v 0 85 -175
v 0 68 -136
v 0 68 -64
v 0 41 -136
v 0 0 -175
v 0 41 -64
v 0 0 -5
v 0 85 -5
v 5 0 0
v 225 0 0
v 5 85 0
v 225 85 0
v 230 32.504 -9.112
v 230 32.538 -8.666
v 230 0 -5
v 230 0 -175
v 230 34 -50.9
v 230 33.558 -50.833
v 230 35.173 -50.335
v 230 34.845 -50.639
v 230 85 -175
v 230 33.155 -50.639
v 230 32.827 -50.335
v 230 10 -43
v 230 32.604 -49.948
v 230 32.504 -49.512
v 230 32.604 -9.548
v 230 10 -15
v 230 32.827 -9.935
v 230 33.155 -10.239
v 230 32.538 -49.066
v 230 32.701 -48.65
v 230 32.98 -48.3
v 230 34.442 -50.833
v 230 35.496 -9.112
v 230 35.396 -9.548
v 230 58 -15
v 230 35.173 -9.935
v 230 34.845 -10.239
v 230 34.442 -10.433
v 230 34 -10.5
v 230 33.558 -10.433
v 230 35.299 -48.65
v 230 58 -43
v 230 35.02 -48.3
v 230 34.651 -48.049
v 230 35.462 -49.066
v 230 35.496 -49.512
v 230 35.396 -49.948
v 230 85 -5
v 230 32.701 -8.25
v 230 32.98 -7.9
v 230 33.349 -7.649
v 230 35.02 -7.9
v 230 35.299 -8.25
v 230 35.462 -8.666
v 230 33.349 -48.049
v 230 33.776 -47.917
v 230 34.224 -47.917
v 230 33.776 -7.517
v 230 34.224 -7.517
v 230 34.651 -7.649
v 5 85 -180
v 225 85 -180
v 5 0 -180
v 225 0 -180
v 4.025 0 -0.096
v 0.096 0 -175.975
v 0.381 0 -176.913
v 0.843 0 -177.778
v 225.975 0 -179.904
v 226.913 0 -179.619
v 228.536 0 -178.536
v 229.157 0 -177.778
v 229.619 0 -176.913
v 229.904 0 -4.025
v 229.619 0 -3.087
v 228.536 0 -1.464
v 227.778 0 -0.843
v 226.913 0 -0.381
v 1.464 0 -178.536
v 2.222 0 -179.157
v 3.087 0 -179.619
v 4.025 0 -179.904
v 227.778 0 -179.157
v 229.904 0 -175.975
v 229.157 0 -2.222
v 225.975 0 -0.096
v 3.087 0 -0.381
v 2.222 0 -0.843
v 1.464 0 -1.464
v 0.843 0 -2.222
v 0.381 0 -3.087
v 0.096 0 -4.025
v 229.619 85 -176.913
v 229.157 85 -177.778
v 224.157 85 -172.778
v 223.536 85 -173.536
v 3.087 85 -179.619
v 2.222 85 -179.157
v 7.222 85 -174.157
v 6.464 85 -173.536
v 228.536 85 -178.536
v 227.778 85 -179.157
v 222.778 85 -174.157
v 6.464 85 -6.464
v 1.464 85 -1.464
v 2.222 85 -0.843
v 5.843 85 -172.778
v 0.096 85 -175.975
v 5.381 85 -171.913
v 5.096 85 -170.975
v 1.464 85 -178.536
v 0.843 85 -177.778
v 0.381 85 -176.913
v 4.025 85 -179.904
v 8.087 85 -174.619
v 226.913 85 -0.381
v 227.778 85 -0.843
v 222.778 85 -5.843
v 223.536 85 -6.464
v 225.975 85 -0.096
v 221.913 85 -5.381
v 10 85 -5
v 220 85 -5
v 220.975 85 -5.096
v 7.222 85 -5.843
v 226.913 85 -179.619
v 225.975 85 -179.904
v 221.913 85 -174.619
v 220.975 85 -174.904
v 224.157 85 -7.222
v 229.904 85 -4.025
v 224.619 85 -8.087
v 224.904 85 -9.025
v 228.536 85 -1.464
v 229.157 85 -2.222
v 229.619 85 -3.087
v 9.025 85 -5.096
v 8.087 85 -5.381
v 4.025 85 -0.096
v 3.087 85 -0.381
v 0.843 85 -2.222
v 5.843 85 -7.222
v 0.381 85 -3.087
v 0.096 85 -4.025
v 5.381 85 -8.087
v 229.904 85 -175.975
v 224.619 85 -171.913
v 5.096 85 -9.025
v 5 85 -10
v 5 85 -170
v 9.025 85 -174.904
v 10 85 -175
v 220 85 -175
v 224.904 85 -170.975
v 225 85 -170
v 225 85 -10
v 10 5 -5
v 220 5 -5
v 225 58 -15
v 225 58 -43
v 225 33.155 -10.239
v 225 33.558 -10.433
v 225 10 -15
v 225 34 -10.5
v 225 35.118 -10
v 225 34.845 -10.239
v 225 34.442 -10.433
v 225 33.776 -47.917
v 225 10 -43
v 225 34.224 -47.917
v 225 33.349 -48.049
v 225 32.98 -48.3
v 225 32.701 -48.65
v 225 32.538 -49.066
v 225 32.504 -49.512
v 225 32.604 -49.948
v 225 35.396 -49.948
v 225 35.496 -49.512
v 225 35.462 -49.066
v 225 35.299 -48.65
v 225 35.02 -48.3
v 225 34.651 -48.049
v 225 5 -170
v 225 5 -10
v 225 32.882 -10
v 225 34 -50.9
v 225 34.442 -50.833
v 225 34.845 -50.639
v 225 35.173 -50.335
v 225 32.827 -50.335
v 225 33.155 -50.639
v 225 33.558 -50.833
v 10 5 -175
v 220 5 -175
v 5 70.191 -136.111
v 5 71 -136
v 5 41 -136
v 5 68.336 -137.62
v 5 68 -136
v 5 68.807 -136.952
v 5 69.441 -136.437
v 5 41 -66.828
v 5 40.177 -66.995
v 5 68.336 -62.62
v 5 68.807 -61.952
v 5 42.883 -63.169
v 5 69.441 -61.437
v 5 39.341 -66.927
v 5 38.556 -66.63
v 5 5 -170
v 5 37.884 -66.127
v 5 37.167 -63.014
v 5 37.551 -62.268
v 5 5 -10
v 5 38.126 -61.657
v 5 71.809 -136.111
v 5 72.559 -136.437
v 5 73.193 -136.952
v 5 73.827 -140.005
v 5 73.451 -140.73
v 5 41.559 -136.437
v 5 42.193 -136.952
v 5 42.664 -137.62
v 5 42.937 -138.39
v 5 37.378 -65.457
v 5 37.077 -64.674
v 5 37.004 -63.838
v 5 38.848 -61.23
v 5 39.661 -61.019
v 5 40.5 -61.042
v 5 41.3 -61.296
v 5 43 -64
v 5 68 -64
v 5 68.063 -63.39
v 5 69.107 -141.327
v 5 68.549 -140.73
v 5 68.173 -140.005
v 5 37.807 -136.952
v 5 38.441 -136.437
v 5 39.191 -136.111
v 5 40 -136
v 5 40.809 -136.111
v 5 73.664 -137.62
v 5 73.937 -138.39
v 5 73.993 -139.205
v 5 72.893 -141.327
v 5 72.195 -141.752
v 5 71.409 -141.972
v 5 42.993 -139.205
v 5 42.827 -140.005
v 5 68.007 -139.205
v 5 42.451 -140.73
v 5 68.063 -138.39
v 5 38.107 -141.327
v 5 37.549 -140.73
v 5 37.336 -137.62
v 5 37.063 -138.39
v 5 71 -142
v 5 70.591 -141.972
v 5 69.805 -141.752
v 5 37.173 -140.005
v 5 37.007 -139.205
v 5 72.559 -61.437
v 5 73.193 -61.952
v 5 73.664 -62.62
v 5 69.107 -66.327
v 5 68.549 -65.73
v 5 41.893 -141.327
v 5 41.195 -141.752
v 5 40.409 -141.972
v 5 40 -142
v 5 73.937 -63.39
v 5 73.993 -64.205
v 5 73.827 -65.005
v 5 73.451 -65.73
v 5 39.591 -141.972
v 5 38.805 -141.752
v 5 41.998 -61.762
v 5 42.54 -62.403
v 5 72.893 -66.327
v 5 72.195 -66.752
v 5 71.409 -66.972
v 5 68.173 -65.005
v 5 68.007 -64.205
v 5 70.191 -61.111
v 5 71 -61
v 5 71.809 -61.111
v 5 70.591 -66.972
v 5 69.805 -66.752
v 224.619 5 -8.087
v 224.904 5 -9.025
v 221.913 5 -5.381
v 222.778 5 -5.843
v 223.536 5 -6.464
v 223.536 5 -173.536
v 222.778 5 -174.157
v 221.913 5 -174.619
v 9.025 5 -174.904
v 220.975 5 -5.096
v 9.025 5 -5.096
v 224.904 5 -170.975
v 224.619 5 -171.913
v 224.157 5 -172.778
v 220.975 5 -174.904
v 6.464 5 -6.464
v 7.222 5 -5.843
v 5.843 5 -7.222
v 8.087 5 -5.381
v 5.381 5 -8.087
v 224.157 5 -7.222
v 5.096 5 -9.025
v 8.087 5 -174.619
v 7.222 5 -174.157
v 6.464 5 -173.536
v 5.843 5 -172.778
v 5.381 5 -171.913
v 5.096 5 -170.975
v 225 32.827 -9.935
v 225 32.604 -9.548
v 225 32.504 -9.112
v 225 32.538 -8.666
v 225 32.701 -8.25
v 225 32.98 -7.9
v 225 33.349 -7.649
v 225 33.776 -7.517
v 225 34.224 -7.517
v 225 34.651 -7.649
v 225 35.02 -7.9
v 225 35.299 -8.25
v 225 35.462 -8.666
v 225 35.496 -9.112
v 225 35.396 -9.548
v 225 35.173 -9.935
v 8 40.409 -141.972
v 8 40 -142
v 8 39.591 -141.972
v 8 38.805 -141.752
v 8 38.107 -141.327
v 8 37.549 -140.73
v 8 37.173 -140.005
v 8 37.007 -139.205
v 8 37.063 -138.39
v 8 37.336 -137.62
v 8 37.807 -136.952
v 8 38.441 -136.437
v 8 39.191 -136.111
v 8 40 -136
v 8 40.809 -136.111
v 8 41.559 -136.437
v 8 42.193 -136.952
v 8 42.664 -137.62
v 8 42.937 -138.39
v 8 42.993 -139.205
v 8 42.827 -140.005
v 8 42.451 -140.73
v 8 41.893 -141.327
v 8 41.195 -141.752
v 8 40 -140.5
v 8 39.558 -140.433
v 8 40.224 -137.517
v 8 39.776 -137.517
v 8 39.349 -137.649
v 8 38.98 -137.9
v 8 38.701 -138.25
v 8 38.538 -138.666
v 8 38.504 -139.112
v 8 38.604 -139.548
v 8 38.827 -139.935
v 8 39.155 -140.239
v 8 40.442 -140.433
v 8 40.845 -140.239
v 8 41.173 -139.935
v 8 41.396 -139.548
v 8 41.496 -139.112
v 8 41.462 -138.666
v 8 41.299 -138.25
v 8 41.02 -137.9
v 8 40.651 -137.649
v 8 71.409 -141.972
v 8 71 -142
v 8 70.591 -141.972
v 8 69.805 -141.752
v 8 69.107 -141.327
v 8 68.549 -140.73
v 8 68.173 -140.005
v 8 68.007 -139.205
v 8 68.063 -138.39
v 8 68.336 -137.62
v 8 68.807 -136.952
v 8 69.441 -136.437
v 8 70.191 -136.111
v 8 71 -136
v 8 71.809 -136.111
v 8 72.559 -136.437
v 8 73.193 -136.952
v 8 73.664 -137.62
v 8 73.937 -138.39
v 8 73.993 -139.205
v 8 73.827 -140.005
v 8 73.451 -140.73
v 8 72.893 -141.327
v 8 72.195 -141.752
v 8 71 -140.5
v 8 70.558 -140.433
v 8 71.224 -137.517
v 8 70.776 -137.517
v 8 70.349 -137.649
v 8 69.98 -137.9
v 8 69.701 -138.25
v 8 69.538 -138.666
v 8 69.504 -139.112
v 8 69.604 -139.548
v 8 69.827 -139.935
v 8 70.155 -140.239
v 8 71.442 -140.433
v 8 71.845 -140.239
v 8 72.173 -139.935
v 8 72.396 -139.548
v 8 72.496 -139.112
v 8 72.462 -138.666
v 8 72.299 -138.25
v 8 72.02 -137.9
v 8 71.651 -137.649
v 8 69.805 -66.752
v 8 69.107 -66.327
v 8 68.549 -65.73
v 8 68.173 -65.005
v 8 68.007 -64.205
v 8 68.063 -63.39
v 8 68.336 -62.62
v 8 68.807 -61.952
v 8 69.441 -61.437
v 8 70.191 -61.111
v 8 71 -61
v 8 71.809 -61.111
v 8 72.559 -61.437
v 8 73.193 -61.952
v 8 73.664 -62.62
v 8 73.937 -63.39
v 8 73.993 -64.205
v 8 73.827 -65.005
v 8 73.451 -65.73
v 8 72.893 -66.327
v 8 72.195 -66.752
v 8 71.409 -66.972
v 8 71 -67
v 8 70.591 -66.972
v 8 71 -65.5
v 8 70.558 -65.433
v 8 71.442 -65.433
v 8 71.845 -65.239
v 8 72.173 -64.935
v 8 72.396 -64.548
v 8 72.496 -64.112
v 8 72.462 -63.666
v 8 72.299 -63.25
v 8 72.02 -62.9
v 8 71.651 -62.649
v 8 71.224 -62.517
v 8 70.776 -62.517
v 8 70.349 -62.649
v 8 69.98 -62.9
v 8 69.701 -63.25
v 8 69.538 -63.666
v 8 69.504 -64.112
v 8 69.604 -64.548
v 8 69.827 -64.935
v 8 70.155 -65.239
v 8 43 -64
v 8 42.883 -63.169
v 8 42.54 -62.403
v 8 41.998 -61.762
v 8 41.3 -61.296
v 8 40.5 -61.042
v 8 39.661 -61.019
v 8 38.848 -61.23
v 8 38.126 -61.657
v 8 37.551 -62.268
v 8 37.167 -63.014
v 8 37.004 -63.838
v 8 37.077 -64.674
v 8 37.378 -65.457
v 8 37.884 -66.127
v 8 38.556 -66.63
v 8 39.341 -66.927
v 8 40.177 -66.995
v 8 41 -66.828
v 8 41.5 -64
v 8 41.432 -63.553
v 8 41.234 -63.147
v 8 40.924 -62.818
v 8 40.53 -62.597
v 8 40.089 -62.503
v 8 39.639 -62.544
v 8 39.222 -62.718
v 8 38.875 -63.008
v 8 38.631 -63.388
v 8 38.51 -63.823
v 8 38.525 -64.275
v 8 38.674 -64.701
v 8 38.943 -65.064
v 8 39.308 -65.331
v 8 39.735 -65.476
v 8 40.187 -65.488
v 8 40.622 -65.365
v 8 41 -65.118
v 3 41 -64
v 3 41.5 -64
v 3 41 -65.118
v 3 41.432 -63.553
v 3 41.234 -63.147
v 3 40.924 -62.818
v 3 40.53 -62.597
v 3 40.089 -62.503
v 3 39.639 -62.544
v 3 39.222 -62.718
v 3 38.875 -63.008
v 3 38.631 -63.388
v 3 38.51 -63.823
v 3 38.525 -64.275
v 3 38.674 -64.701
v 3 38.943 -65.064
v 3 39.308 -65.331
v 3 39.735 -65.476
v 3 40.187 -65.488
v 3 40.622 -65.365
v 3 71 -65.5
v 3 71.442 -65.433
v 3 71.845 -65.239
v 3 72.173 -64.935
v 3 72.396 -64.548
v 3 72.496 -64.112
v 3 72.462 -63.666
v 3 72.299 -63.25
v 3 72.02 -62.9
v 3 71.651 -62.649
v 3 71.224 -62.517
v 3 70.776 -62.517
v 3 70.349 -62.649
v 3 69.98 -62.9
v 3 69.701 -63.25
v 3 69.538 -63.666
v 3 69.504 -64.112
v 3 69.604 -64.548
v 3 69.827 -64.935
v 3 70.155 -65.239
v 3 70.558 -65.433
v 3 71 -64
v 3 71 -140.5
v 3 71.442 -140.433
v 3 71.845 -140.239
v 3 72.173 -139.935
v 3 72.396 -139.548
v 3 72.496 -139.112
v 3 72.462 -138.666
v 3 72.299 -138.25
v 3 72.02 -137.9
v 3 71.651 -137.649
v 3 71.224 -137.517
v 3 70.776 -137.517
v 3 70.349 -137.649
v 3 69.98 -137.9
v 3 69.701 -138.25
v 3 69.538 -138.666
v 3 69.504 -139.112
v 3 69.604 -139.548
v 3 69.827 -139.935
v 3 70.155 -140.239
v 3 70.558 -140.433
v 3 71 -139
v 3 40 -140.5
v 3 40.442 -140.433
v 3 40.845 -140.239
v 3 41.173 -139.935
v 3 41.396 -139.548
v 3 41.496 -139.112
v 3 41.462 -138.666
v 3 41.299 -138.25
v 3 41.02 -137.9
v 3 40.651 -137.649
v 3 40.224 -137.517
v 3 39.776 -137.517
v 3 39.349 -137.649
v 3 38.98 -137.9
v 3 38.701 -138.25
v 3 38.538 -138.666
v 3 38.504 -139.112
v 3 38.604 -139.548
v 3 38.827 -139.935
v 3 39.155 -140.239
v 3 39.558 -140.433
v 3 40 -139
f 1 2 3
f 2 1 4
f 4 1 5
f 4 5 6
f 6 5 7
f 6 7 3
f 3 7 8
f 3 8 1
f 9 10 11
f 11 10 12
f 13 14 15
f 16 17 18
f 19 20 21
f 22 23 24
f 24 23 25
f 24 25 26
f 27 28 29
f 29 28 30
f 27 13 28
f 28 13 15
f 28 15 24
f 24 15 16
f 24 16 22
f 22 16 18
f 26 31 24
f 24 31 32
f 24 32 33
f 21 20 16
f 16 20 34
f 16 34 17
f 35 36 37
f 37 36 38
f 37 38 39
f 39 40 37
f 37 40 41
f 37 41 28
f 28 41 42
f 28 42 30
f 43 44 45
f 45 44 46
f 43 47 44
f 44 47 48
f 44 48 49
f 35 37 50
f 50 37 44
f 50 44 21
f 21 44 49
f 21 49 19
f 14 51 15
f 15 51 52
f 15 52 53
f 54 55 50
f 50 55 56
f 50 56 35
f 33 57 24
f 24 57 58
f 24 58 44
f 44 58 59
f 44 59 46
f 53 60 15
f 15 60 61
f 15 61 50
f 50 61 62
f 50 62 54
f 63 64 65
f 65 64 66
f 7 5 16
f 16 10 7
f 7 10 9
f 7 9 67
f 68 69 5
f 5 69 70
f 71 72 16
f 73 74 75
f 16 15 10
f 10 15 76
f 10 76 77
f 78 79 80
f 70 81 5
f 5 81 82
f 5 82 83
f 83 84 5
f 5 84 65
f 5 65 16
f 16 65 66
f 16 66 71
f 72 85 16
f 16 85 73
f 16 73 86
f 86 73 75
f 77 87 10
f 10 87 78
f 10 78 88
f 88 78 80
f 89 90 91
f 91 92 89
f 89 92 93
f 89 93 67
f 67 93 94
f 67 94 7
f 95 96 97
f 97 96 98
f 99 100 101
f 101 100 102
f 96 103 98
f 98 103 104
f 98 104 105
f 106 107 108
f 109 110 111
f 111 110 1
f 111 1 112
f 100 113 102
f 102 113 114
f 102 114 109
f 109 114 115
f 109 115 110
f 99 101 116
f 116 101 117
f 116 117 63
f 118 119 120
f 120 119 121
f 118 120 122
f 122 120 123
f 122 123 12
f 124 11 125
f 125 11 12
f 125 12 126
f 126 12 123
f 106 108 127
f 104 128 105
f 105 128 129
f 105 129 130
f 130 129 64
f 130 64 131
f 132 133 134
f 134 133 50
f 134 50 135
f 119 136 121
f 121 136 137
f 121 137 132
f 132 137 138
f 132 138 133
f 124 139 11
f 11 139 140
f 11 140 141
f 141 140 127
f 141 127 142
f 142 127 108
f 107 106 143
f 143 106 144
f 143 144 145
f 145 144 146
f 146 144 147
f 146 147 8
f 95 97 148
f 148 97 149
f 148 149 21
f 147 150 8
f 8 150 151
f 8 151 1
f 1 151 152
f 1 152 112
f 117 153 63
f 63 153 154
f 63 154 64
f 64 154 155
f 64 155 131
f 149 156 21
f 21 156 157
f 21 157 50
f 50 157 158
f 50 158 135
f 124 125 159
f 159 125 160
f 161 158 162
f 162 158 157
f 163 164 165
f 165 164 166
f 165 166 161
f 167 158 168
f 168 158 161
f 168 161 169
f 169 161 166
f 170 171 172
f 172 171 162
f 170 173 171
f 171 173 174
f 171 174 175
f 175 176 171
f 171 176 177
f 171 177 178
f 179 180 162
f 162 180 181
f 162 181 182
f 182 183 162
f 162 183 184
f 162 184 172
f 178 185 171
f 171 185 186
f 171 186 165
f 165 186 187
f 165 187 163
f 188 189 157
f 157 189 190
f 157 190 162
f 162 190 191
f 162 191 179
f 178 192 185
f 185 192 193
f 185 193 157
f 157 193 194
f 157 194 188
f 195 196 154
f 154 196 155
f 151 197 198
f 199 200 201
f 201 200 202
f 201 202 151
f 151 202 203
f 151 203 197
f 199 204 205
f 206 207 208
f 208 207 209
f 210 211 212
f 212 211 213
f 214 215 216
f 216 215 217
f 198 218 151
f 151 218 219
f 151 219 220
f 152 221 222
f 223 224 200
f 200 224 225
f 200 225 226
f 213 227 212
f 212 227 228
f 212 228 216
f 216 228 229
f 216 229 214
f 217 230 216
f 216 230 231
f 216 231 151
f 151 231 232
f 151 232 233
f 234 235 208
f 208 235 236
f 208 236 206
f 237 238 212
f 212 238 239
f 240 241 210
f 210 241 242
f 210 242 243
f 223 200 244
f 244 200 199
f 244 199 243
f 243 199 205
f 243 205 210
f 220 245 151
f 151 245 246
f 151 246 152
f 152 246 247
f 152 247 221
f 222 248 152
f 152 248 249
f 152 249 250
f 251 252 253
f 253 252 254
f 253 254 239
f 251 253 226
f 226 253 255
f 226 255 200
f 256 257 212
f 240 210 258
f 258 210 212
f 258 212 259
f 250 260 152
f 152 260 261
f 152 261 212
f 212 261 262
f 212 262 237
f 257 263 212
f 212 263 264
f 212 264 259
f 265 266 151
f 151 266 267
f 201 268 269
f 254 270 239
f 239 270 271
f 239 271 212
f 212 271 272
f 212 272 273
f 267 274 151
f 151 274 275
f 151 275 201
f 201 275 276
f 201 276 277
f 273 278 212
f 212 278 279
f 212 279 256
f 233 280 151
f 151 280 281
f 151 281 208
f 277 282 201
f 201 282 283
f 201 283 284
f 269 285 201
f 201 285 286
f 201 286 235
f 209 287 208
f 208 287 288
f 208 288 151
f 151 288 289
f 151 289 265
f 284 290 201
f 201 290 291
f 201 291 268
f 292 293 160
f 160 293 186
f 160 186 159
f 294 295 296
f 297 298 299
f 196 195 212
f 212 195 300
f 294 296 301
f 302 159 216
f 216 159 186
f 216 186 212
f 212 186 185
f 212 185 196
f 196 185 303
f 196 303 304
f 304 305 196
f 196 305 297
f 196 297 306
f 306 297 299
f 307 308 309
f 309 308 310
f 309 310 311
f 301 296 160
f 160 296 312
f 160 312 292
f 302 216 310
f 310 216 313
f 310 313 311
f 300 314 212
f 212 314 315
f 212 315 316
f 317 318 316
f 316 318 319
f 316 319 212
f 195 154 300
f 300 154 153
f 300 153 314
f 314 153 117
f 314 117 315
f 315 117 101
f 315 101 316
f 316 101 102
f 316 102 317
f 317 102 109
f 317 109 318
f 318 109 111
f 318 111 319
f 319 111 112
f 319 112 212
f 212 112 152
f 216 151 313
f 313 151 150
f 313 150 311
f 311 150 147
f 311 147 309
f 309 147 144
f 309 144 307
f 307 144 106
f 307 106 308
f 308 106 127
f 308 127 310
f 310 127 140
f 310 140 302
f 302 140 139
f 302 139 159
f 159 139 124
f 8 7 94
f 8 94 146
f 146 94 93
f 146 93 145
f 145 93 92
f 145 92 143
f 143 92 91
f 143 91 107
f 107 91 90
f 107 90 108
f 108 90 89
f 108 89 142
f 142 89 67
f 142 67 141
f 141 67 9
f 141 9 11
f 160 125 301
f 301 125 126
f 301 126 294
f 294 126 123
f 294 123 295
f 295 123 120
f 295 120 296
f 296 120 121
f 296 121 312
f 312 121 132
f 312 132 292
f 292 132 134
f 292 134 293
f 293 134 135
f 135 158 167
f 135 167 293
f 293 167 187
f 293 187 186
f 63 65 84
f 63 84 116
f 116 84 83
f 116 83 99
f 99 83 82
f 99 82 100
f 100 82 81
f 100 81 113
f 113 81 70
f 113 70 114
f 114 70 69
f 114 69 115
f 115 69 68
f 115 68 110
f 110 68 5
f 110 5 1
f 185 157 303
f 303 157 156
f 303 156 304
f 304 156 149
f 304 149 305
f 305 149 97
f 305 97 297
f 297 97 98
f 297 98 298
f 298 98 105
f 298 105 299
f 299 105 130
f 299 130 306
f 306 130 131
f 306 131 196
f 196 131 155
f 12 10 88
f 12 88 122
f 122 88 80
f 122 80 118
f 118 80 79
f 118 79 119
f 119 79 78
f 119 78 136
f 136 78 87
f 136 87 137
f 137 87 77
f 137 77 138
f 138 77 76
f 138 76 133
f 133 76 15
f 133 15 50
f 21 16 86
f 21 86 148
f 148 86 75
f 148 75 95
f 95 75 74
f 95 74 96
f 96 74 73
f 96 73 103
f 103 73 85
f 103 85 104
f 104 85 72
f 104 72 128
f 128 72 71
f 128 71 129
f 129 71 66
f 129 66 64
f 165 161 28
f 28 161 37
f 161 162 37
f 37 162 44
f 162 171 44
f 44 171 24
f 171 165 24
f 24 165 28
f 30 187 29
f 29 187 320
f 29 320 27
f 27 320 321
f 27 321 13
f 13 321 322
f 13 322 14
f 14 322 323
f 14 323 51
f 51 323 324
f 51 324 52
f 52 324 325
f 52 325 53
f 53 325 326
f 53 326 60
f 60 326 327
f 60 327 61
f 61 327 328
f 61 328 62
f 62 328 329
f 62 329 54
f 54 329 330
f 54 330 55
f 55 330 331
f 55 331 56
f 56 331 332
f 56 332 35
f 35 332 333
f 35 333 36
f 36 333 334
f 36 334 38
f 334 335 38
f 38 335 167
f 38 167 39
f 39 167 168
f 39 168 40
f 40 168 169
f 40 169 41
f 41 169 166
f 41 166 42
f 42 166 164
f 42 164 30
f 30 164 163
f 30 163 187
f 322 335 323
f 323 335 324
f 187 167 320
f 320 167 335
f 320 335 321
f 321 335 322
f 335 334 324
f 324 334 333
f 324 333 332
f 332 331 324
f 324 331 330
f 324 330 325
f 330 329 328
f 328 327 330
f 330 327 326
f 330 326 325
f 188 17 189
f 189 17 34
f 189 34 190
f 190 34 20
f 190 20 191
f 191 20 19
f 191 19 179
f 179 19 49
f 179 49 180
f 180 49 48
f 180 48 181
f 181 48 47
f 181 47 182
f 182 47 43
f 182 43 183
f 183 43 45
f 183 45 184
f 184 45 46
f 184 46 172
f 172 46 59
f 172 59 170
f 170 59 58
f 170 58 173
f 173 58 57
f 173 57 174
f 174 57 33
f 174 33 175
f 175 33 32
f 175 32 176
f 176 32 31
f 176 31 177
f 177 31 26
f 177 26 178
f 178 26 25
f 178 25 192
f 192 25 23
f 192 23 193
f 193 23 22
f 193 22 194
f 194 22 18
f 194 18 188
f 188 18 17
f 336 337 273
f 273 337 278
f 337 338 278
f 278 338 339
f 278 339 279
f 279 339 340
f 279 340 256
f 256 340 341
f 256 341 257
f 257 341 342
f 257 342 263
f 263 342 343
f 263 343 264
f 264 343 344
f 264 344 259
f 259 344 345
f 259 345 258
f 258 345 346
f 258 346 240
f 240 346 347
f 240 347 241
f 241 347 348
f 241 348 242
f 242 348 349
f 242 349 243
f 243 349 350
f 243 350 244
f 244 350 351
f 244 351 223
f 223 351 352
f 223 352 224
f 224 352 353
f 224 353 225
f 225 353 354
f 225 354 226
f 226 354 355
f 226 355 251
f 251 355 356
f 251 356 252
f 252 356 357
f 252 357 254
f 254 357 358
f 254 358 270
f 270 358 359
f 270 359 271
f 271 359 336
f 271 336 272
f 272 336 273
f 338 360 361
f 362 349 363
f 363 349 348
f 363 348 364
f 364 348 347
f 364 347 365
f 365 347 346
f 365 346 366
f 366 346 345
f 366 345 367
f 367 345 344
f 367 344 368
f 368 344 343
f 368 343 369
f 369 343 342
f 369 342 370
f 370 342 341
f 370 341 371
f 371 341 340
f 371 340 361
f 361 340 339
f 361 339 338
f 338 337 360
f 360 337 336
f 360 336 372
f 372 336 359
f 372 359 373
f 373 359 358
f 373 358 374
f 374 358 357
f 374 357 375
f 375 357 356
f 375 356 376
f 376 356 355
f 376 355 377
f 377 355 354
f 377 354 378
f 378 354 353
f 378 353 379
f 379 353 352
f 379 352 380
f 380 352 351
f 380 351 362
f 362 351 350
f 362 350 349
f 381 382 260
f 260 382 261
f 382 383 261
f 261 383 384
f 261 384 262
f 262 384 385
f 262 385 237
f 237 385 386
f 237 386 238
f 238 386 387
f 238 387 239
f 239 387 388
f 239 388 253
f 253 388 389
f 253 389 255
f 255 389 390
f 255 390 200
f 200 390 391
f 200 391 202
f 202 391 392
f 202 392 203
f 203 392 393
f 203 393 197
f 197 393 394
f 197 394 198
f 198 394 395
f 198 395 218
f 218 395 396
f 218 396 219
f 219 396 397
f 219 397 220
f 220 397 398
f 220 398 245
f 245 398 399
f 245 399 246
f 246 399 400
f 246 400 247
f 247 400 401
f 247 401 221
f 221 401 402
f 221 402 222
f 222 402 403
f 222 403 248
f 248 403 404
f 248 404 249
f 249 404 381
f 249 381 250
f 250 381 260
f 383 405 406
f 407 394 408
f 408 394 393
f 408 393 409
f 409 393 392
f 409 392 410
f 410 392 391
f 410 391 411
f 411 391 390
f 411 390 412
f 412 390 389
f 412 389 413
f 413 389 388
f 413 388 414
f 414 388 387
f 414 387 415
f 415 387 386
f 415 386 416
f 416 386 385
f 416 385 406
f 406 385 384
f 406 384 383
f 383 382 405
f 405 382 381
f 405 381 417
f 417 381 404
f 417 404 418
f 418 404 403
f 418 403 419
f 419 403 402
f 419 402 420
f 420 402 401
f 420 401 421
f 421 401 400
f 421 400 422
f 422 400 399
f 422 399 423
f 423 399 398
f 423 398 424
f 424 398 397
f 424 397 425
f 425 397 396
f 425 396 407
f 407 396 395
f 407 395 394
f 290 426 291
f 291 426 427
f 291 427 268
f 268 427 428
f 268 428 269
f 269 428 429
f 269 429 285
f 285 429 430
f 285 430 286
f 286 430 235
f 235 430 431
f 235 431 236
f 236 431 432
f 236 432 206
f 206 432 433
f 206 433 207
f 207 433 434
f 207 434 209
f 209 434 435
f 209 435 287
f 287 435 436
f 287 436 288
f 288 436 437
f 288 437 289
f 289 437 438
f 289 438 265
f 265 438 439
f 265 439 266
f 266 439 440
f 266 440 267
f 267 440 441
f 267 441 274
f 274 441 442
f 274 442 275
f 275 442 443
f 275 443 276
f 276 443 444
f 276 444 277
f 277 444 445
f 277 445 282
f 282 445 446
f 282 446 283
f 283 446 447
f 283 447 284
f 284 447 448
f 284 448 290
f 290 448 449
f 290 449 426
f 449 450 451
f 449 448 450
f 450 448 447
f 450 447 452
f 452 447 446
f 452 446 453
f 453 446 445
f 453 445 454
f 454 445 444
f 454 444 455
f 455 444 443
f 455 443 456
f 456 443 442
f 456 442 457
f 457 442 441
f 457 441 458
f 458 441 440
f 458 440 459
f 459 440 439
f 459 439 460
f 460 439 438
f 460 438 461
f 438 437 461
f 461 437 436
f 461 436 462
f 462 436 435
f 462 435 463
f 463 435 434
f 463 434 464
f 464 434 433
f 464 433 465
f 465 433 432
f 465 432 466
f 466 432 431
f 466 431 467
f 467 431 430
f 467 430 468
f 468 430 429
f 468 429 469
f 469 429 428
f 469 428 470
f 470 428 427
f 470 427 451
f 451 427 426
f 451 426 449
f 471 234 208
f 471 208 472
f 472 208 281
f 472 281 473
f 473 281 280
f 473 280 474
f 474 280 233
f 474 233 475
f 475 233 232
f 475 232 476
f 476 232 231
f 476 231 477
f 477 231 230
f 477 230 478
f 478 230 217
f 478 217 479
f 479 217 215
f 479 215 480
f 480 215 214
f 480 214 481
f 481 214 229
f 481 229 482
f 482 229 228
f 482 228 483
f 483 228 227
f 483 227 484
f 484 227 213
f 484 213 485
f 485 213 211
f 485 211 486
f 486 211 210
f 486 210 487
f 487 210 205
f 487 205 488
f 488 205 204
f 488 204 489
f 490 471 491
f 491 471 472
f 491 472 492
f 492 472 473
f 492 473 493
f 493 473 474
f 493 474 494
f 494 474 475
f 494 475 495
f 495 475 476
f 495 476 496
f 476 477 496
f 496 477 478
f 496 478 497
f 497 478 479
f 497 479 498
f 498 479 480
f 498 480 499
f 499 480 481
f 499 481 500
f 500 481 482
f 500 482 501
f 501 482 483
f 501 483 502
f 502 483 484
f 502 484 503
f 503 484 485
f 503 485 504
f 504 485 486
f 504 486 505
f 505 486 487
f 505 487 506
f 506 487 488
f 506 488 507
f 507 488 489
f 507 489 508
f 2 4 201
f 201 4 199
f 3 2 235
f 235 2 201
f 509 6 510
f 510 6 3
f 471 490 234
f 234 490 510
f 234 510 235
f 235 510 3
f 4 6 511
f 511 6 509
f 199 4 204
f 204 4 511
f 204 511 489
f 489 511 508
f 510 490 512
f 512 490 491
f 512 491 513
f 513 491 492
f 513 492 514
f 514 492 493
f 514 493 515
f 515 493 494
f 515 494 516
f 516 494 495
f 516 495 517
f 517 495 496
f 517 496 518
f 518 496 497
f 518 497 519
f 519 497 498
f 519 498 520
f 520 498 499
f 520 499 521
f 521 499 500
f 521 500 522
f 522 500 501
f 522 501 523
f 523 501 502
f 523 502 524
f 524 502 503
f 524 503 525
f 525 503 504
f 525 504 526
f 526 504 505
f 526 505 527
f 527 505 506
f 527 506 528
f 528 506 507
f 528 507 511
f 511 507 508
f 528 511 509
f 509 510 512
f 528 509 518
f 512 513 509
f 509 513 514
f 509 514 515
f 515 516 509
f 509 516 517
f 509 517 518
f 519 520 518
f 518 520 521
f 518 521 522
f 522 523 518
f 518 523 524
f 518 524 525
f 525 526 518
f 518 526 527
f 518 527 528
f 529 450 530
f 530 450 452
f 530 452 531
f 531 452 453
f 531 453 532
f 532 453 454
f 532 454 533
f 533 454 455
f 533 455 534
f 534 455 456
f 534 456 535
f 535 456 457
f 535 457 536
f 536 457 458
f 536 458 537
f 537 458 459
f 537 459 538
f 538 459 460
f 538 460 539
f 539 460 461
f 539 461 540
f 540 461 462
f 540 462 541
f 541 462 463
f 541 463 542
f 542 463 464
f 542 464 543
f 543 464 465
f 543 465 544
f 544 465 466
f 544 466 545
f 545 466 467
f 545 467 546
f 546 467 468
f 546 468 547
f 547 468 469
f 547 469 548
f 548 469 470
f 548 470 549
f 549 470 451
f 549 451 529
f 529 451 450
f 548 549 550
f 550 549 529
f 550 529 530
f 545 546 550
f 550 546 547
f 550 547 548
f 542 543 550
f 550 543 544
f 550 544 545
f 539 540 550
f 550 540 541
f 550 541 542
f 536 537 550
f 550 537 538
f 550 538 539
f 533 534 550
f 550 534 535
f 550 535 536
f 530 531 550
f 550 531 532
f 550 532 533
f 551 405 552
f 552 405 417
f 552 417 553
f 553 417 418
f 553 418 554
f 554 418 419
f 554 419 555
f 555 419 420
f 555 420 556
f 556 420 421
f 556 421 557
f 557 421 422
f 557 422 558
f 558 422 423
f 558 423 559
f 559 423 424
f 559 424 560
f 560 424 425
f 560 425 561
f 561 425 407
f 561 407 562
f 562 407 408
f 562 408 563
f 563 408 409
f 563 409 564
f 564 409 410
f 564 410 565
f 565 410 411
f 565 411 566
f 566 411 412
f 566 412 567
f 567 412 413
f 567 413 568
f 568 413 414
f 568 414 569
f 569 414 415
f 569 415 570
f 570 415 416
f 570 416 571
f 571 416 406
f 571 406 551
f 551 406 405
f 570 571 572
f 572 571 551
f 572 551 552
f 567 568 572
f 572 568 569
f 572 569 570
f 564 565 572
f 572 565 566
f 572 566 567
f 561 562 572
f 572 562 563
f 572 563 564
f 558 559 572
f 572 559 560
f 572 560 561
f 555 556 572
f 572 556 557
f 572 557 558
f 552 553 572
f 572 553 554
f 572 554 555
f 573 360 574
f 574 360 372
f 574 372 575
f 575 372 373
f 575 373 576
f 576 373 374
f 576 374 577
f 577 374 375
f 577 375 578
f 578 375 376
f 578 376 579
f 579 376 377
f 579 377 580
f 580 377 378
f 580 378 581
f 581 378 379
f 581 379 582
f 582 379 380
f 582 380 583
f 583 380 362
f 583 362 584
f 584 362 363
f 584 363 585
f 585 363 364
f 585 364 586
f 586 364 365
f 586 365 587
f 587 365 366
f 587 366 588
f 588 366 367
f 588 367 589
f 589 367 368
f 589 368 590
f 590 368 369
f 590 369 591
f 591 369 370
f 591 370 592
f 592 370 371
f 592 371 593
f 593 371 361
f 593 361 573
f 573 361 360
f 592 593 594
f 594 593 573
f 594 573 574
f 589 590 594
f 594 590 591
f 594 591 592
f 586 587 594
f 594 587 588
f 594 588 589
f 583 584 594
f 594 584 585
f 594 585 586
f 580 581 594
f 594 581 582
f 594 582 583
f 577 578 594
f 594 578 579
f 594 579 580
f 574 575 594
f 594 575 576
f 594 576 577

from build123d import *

# Parameters (mm, degrees)
SKETCH1_W           = 230
SKETCH1_H           = 180
BOSS_EXTRUDE1_DEPTH = 5
SKETCH2_W           = 230
SKETCH2_H           = 180
SKETCH2_W_2         = 220
SKETCH2_H_2         = 170
BOSS_EXTRUDE2_DEPTH = 80
FILLET1_R           = 5
SKETCH3_W           = 28
SKETCH3_H           = 48
CUT_EXTRUDE1_DEPTH  = 5
SKETCH4_R           = 1.5
CUT_EXTRUDE2_DEPTH  = 5
SKETCH7_R           = 3
BOSS_EXTRUDE3_DEPTH = 3
SKETCH5_W           = 72
SKETCH5_H           = 27
CUT_EXTRUDE3_DEPTH  = 10
SKETCH8_R           = 1.5
CUT_EXTRUDE4_DEPTH  = 5


with BuildPart() as part:
    # Sketch1 → Boss-Extrude1 (new body)
    with BuildSketch(Plane(origin=(0, 0, 0), x_dir=(1, 0, 0), z_dir=(0, 1, 0))):
        with Locations((115, 90)):
            Rectangle(SKETCH1_W, SKETCH1_H)
    extrude(amount=BOSS_EXTRUDE1_DEPTH)

    # Sketch2 → Boss-Extrude2 (add)
    with BuildSketch(Plane(origin=(0, 5, 0), x_dir=(1, 0, 0), z_dir=(0, 1, 0))):
        with Locations((115, 90)):
            Rectangle(SKETCH2_W, SKETCH2_H)
        with Locations((115, 90)):
            Rectangle(SKETCH2_W_2, SKETCH2_H_2, mode=Mode.SUBTRACT)
    extrude(amount=BOSS_EXTRUDE2_DEPTH)

    # Fillet1
    fillet1_edges = [part.edges().sort_by_distance(p)[0] for p in [
        (225, 45, -5),
        (225, 45, -175),
        (5, 45, -175),
        (5, 45, -5),
        (0, 42.5, -180),
        (230, 42.5, -180),
        (230, 42.5, 0),
        (0, 42.5, 0),
    ]]
    fillet(fillet1_edges, radius=FILLET1_R)

    # Sketch3 → Cut-Extrude1 (cut)
    with BuildSketch(Plane(origin=(230, 0, 0), x_dir=(0, 0, -1), z_dir=(1, 0, 0))):
        with Locations((29, 34)):
            Rectangle(SKETCH3_W, SKETCH3_H)
    extrude(amount=-CUT_EXTRUDE1_DEPTH, mode=Mode.SUBTRACT)

    # Sketch4 → Cut-Extrude2 (cut)
    with BuildSketch(Plane(origin=(230, 0, 0), x_dir=(0, 0, -1), z_dir=(1, 0, 0))):
        with Locations((9, 34)):
            Circle(SKETCH4_R)
        with Locations((49.4, 34)):
            Circle(SKETCH4_R)
    extrude(amount=-CUT_EXTRUDE2_DEPTH, mode=Mode.SUBTRACT)

    # Sketch7 → Boss-Extrude3 (add)
    with BuildSketch(Plane(origin=(5, 0, 0), x_dir=(0, 0, -1), z_dir=(1, 0, 0))):
        with Locations((139, 40)):
            Circle(SKETCH7_R)
        with Locations((139, 71)):
            Circle(SKETCH7_R)
        with Locations((64, 71)):
            Circle(SKETCH7_R)
        with Locations((64, 40)):
            Circle(SKETCH7_R)
    extrude(amount=BOSS_EXTRUDE3_DEPTH)

    # Sketch5 → Cut-Extrude3 (cut)
    with BuildSketch(Plane.ZY):
        with Locations((-100, 54.5)):
            Rectangle(SKETCH5_W, SKETCH5_H)
    extrude(amount=-CUT_EXTRUDE3_DEPTH, mode=Mode.SUBTRACT)

    # Sketch8 → Cut-Extrude4 (cut)
    with BuildSketch(Plane(origin=(8, 0, 0), x_dir=(0, 0, -1), z_dir=(1, 0, 0))):
        with Locations((64, 40)):
            Circle(SKETCH8_R)
        with Locations((139, 40)):
            Circle(SKETCH8_R)
        with Locations((139, 71)):
            Circle(SKETCH8_R)
        with Locations((64, 71)):
            Circle(SKETCH8_R)
    extrude(amount=-CUT_EXTRUDE4_DEPTH, mode=Mode.SUBTRACT)


solid = part.part
